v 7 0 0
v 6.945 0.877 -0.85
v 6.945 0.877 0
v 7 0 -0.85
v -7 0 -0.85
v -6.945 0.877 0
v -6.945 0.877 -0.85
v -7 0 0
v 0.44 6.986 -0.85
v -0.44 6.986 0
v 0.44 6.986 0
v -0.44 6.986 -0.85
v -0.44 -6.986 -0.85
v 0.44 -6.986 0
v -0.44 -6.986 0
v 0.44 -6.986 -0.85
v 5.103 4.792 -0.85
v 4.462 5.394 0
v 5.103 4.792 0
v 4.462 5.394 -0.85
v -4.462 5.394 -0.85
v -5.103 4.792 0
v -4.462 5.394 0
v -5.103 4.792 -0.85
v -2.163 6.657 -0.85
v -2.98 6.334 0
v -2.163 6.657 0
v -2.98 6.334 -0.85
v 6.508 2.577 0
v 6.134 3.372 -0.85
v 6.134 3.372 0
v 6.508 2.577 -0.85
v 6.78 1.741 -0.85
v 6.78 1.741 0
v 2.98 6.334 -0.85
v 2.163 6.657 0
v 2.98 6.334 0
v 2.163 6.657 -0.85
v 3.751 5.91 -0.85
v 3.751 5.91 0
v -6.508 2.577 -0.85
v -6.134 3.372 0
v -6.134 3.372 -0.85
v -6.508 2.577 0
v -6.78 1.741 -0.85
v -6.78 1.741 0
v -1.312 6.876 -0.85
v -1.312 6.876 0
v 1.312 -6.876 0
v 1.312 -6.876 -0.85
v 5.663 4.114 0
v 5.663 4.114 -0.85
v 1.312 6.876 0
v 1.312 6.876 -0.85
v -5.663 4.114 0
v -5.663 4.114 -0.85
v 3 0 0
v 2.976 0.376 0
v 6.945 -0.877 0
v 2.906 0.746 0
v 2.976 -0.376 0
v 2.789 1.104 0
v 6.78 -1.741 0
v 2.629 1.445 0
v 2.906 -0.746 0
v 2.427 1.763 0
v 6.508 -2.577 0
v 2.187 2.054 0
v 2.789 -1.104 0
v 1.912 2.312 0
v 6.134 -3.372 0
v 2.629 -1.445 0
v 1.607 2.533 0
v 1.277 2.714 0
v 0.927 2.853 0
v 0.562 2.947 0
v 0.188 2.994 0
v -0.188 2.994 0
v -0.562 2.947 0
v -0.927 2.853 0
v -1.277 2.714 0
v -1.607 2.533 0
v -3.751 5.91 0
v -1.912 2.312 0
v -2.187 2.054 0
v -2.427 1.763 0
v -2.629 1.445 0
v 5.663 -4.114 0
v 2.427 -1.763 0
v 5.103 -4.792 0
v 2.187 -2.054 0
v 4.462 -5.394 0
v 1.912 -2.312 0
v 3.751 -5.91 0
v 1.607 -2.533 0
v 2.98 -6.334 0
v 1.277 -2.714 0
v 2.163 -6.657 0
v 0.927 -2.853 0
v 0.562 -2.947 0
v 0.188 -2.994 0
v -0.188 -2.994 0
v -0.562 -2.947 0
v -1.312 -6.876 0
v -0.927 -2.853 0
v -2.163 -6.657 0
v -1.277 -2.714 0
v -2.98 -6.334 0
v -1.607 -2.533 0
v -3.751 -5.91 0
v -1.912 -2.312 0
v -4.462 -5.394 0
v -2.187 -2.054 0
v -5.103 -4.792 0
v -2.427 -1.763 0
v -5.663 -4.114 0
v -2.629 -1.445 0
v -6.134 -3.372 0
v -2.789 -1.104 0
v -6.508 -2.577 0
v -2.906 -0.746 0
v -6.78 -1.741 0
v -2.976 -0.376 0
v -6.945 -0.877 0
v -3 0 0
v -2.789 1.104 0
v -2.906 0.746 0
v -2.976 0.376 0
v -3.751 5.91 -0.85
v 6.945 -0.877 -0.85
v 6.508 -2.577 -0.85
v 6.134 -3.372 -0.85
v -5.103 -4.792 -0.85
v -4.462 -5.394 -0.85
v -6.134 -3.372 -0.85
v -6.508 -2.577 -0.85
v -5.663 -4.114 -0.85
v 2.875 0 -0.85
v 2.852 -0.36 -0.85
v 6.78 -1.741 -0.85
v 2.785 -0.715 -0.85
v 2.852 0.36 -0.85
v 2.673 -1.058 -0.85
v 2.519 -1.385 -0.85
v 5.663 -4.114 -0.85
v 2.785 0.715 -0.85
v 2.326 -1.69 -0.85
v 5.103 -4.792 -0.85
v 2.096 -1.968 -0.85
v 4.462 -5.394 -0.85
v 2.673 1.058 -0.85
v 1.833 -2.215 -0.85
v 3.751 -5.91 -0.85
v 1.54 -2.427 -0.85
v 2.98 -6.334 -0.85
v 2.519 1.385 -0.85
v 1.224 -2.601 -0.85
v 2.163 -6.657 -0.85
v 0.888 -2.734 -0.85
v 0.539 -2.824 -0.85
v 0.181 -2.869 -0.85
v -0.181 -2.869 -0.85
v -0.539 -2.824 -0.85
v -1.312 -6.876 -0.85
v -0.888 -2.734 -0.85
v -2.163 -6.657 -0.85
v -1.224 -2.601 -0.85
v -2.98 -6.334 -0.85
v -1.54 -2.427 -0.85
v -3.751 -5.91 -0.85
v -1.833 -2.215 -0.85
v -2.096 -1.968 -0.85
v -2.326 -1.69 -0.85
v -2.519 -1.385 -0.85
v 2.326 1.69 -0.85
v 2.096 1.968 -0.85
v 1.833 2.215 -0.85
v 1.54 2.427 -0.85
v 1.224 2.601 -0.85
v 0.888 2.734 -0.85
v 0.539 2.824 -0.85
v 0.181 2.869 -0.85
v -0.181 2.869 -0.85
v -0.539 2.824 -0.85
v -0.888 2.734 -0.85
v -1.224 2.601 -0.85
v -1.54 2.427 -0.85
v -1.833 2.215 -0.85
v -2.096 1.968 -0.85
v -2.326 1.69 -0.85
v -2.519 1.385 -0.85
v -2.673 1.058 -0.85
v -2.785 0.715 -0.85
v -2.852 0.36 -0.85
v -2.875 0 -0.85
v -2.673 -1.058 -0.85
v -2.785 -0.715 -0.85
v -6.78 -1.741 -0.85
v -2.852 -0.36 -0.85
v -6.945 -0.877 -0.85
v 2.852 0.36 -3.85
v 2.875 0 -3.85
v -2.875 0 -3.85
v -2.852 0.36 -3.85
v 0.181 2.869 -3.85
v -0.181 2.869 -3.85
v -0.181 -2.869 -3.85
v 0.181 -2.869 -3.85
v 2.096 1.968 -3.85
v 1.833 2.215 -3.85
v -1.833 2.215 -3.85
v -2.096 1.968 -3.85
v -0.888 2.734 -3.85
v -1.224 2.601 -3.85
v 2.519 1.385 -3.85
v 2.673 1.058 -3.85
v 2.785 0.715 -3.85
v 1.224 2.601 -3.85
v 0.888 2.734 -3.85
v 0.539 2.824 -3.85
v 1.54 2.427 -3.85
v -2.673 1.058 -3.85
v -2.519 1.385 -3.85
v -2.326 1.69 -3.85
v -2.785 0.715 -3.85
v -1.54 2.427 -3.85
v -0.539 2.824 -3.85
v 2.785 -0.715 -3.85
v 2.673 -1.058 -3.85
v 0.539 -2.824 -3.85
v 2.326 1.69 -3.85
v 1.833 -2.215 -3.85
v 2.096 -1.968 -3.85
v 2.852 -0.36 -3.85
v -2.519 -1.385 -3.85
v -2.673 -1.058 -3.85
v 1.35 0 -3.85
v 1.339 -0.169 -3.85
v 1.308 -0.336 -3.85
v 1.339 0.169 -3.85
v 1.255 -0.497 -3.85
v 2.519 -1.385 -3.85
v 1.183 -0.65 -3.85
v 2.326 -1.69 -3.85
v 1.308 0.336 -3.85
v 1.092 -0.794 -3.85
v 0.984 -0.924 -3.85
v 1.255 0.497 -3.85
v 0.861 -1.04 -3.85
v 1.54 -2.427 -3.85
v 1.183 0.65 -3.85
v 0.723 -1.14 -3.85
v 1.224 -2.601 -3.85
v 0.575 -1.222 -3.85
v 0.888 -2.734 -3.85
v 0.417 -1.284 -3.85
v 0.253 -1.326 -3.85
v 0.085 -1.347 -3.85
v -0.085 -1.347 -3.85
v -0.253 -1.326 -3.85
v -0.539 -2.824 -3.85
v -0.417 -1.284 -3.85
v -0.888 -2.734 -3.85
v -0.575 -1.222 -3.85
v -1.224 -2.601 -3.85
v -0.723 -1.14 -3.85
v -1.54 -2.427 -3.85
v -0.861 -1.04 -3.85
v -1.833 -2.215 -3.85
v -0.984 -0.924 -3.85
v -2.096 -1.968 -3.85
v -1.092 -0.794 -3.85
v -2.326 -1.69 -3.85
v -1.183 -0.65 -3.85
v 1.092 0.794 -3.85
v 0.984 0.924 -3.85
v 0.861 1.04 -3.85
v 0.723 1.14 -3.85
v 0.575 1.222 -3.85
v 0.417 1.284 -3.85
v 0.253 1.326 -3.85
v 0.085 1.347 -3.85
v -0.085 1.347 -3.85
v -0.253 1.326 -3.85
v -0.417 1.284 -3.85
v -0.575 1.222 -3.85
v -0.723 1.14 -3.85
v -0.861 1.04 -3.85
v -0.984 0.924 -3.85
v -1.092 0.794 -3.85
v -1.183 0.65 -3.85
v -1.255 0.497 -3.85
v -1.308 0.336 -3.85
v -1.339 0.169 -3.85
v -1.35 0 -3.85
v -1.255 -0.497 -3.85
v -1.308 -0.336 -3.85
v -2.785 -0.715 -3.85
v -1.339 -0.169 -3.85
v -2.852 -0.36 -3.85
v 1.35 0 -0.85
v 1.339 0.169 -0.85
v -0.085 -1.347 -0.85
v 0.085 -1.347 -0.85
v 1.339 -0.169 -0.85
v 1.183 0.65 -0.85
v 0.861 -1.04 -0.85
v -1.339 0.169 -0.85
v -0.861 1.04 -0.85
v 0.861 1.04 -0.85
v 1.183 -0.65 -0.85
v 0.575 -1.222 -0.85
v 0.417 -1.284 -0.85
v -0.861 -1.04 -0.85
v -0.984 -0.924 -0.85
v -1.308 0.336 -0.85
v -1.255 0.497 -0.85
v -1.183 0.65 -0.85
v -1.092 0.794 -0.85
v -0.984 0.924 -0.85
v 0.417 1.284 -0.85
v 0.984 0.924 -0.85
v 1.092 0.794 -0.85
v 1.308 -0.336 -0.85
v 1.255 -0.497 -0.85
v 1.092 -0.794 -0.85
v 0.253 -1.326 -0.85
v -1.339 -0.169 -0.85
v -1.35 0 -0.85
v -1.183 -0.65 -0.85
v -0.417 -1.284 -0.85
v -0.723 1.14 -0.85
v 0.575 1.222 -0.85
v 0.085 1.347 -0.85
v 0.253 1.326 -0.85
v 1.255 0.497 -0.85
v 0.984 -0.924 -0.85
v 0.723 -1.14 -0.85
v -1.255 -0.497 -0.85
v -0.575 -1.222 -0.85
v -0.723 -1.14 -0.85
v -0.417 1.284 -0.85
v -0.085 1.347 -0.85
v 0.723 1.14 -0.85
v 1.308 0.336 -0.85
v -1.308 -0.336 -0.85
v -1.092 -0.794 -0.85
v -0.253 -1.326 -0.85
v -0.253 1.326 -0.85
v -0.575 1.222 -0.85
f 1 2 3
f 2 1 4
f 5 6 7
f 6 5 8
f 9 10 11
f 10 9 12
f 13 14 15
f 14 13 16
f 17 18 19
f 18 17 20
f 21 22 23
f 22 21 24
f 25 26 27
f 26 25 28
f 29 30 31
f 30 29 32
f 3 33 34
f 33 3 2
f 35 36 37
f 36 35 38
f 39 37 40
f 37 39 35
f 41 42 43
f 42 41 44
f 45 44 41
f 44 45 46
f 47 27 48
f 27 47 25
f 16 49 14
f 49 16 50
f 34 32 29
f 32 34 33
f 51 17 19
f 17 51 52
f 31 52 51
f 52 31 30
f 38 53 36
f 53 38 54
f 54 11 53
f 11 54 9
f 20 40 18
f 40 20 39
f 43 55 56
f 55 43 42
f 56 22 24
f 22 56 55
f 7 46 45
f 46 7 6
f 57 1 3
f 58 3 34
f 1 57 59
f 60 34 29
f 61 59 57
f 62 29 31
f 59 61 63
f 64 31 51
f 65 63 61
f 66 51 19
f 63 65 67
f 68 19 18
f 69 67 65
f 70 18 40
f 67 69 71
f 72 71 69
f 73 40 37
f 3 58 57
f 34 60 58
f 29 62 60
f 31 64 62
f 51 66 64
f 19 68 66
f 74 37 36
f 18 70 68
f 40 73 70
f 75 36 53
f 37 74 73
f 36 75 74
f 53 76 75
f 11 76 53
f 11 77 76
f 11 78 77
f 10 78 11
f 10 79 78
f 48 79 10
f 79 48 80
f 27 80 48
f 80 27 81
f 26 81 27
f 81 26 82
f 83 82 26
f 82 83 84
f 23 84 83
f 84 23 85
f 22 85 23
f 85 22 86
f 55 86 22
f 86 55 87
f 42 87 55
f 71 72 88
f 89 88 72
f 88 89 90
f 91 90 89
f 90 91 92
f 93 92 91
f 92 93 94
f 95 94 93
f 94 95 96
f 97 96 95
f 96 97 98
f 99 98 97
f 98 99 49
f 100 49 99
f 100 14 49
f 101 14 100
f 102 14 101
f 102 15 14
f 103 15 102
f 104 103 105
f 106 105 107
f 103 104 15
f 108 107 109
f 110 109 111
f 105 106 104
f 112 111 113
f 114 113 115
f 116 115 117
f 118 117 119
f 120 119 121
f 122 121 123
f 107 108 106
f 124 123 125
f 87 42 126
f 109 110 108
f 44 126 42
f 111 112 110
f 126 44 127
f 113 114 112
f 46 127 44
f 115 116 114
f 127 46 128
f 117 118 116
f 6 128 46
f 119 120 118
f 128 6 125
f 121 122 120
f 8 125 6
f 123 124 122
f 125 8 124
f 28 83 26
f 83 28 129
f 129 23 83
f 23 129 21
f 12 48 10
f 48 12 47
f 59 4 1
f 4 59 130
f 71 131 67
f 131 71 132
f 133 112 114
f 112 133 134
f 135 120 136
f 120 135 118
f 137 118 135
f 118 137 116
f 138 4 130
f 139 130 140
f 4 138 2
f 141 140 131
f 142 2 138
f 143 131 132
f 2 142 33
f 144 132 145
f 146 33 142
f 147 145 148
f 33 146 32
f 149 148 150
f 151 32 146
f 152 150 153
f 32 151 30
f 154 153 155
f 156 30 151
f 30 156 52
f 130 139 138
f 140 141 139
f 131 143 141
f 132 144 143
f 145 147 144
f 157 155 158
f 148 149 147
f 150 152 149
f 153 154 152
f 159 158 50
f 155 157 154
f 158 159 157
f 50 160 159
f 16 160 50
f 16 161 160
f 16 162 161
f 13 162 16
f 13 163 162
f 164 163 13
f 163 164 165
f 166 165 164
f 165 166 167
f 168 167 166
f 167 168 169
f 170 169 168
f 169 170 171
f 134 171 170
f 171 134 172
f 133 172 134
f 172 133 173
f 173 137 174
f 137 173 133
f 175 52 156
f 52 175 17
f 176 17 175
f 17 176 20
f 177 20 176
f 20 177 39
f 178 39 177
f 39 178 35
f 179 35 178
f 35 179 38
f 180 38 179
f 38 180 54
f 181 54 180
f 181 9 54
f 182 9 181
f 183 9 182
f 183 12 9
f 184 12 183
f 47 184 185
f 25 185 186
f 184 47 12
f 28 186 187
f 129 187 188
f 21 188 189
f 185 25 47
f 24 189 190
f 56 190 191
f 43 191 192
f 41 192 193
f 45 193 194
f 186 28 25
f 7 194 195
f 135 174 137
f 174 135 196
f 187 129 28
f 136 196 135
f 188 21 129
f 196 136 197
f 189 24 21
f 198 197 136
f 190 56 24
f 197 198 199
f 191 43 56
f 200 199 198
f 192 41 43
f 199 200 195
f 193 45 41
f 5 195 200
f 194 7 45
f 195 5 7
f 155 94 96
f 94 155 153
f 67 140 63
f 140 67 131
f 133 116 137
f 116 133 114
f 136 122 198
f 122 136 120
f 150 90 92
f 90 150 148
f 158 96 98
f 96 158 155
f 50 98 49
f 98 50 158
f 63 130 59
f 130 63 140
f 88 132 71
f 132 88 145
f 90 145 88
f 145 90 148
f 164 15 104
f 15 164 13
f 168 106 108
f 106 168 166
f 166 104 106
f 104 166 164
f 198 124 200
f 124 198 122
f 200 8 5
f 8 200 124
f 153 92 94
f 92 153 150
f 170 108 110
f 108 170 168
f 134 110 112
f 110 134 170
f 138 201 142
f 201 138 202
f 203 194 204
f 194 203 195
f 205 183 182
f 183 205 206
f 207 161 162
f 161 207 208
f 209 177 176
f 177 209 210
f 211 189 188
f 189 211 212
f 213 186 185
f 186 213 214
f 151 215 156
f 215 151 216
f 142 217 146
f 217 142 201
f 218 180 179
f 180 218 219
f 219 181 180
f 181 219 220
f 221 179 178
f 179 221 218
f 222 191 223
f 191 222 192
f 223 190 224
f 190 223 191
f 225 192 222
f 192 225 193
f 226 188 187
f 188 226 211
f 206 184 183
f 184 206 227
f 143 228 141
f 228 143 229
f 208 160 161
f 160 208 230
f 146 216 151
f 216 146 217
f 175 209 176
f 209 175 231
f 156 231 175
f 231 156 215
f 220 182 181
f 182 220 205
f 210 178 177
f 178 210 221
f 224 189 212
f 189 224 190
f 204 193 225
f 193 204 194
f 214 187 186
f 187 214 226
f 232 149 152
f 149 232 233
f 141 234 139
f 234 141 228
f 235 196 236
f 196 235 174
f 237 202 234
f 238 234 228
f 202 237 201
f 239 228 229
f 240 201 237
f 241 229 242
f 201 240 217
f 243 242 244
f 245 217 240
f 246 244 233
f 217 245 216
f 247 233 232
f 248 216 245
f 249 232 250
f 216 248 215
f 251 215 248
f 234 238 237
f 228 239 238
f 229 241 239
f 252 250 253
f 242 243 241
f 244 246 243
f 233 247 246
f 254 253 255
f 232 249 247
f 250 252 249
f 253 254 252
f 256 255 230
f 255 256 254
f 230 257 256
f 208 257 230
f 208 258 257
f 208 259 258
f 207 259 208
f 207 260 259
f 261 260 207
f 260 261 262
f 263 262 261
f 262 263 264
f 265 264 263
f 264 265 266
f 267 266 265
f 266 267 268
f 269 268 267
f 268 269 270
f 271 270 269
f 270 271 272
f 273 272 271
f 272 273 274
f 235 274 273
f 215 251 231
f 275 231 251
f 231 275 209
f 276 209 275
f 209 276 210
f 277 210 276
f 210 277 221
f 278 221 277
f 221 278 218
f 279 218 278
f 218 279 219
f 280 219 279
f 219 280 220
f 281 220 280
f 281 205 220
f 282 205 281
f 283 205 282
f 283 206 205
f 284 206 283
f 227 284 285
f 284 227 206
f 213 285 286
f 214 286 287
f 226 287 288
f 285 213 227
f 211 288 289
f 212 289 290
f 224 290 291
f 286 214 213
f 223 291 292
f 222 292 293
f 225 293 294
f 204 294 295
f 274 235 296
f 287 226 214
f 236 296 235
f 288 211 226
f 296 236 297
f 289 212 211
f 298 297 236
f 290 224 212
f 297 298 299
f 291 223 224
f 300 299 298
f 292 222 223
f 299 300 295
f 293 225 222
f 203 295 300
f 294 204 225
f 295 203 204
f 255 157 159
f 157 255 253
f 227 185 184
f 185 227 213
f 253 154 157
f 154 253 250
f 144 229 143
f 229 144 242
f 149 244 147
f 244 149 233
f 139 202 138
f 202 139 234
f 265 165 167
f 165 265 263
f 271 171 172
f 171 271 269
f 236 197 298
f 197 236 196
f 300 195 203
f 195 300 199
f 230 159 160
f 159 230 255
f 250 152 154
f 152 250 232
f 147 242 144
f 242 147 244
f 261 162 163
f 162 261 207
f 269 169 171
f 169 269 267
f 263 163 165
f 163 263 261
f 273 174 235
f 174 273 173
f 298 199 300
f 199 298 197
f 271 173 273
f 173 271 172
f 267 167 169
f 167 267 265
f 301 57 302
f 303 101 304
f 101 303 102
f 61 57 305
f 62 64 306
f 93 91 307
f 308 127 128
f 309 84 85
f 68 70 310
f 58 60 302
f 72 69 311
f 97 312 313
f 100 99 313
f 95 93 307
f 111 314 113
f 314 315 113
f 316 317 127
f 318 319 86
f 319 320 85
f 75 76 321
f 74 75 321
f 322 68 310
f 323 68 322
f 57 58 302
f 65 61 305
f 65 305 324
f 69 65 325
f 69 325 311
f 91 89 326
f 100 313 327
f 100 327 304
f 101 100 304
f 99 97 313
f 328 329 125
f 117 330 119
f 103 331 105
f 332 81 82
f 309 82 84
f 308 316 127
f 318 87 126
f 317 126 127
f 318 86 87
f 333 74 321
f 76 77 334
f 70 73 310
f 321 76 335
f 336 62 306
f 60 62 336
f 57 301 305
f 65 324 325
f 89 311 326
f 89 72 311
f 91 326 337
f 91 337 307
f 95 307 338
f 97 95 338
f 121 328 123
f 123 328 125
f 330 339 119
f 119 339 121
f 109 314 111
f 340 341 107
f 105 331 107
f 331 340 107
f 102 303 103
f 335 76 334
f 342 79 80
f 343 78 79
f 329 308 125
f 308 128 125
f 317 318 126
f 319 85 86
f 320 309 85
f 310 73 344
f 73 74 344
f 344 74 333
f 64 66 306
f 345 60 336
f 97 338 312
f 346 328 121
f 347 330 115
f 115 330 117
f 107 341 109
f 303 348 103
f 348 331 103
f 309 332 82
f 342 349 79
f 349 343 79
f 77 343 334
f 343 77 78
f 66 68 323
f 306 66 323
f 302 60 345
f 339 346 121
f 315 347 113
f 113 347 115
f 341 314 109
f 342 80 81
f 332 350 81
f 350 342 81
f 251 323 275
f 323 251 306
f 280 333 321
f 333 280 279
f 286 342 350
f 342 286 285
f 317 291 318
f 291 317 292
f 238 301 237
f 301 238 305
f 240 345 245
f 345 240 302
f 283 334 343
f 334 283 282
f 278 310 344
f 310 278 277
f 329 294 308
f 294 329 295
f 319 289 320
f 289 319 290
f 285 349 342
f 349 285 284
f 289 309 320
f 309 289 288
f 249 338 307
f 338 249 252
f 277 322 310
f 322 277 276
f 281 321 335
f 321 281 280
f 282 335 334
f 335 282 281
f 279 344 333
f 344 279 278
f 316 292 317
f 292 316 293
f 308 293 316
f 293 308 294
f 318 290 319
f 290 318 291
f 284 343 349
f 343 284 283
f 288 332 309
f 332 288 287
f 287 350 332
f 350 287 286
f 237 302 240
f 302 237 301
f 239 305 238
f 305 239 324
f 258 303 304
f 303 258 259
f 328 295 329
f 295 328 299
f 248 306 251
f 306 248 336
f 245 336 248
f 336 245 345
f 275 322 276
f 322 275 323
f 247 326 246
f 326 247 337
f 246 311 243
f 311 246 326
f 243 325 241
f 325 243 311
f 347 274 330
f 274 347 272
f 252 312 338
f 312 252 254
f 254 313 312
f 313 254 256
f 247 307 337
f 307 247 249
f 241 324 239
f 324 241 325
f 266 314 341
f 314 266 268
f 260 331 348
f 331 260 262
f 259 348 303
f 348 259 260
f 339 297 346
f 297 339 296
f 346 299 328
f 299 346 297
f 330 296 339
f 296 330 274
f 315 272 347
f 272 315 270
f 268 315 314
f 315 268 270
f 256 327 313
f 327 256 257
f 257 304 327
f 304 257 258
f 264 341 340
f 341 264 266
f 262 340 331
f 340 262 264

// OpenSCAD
$fn = 50;

difference() {
	union() {
		translate(v = [0, 0, -0.85]) {
			cylinder(h = 0.85, r = 7.0);
		}
		#translate(v = [0, 0, -3.85]) {
			cylinder(h = 3.85, r = 2.875);
		}
	}
	union() {
		translate(v = [0, 0, 0]) {
			rotate(a = [0, 0, 0]) {
				difference() {
					union() {
						translate(v = [0, 0, -3.85]) {
							cylinder(h = 3.85, r = 1.0);
						}
						translate(v = [0, 0, -0.85]) {
							cylinder(h = 0.85, r1 = 1.35, r2 = 3.0);
						}
						translate(v = [0, 0, -3.85]) {
							cylinder(h = 3.85, r = 1.35);
						}
						translate(v = [0, 0, -3.85]) {
							cylinder(h = 3.85, r = 1.0);
						}
					}
					union();
				}
			}
		}
	}
}
